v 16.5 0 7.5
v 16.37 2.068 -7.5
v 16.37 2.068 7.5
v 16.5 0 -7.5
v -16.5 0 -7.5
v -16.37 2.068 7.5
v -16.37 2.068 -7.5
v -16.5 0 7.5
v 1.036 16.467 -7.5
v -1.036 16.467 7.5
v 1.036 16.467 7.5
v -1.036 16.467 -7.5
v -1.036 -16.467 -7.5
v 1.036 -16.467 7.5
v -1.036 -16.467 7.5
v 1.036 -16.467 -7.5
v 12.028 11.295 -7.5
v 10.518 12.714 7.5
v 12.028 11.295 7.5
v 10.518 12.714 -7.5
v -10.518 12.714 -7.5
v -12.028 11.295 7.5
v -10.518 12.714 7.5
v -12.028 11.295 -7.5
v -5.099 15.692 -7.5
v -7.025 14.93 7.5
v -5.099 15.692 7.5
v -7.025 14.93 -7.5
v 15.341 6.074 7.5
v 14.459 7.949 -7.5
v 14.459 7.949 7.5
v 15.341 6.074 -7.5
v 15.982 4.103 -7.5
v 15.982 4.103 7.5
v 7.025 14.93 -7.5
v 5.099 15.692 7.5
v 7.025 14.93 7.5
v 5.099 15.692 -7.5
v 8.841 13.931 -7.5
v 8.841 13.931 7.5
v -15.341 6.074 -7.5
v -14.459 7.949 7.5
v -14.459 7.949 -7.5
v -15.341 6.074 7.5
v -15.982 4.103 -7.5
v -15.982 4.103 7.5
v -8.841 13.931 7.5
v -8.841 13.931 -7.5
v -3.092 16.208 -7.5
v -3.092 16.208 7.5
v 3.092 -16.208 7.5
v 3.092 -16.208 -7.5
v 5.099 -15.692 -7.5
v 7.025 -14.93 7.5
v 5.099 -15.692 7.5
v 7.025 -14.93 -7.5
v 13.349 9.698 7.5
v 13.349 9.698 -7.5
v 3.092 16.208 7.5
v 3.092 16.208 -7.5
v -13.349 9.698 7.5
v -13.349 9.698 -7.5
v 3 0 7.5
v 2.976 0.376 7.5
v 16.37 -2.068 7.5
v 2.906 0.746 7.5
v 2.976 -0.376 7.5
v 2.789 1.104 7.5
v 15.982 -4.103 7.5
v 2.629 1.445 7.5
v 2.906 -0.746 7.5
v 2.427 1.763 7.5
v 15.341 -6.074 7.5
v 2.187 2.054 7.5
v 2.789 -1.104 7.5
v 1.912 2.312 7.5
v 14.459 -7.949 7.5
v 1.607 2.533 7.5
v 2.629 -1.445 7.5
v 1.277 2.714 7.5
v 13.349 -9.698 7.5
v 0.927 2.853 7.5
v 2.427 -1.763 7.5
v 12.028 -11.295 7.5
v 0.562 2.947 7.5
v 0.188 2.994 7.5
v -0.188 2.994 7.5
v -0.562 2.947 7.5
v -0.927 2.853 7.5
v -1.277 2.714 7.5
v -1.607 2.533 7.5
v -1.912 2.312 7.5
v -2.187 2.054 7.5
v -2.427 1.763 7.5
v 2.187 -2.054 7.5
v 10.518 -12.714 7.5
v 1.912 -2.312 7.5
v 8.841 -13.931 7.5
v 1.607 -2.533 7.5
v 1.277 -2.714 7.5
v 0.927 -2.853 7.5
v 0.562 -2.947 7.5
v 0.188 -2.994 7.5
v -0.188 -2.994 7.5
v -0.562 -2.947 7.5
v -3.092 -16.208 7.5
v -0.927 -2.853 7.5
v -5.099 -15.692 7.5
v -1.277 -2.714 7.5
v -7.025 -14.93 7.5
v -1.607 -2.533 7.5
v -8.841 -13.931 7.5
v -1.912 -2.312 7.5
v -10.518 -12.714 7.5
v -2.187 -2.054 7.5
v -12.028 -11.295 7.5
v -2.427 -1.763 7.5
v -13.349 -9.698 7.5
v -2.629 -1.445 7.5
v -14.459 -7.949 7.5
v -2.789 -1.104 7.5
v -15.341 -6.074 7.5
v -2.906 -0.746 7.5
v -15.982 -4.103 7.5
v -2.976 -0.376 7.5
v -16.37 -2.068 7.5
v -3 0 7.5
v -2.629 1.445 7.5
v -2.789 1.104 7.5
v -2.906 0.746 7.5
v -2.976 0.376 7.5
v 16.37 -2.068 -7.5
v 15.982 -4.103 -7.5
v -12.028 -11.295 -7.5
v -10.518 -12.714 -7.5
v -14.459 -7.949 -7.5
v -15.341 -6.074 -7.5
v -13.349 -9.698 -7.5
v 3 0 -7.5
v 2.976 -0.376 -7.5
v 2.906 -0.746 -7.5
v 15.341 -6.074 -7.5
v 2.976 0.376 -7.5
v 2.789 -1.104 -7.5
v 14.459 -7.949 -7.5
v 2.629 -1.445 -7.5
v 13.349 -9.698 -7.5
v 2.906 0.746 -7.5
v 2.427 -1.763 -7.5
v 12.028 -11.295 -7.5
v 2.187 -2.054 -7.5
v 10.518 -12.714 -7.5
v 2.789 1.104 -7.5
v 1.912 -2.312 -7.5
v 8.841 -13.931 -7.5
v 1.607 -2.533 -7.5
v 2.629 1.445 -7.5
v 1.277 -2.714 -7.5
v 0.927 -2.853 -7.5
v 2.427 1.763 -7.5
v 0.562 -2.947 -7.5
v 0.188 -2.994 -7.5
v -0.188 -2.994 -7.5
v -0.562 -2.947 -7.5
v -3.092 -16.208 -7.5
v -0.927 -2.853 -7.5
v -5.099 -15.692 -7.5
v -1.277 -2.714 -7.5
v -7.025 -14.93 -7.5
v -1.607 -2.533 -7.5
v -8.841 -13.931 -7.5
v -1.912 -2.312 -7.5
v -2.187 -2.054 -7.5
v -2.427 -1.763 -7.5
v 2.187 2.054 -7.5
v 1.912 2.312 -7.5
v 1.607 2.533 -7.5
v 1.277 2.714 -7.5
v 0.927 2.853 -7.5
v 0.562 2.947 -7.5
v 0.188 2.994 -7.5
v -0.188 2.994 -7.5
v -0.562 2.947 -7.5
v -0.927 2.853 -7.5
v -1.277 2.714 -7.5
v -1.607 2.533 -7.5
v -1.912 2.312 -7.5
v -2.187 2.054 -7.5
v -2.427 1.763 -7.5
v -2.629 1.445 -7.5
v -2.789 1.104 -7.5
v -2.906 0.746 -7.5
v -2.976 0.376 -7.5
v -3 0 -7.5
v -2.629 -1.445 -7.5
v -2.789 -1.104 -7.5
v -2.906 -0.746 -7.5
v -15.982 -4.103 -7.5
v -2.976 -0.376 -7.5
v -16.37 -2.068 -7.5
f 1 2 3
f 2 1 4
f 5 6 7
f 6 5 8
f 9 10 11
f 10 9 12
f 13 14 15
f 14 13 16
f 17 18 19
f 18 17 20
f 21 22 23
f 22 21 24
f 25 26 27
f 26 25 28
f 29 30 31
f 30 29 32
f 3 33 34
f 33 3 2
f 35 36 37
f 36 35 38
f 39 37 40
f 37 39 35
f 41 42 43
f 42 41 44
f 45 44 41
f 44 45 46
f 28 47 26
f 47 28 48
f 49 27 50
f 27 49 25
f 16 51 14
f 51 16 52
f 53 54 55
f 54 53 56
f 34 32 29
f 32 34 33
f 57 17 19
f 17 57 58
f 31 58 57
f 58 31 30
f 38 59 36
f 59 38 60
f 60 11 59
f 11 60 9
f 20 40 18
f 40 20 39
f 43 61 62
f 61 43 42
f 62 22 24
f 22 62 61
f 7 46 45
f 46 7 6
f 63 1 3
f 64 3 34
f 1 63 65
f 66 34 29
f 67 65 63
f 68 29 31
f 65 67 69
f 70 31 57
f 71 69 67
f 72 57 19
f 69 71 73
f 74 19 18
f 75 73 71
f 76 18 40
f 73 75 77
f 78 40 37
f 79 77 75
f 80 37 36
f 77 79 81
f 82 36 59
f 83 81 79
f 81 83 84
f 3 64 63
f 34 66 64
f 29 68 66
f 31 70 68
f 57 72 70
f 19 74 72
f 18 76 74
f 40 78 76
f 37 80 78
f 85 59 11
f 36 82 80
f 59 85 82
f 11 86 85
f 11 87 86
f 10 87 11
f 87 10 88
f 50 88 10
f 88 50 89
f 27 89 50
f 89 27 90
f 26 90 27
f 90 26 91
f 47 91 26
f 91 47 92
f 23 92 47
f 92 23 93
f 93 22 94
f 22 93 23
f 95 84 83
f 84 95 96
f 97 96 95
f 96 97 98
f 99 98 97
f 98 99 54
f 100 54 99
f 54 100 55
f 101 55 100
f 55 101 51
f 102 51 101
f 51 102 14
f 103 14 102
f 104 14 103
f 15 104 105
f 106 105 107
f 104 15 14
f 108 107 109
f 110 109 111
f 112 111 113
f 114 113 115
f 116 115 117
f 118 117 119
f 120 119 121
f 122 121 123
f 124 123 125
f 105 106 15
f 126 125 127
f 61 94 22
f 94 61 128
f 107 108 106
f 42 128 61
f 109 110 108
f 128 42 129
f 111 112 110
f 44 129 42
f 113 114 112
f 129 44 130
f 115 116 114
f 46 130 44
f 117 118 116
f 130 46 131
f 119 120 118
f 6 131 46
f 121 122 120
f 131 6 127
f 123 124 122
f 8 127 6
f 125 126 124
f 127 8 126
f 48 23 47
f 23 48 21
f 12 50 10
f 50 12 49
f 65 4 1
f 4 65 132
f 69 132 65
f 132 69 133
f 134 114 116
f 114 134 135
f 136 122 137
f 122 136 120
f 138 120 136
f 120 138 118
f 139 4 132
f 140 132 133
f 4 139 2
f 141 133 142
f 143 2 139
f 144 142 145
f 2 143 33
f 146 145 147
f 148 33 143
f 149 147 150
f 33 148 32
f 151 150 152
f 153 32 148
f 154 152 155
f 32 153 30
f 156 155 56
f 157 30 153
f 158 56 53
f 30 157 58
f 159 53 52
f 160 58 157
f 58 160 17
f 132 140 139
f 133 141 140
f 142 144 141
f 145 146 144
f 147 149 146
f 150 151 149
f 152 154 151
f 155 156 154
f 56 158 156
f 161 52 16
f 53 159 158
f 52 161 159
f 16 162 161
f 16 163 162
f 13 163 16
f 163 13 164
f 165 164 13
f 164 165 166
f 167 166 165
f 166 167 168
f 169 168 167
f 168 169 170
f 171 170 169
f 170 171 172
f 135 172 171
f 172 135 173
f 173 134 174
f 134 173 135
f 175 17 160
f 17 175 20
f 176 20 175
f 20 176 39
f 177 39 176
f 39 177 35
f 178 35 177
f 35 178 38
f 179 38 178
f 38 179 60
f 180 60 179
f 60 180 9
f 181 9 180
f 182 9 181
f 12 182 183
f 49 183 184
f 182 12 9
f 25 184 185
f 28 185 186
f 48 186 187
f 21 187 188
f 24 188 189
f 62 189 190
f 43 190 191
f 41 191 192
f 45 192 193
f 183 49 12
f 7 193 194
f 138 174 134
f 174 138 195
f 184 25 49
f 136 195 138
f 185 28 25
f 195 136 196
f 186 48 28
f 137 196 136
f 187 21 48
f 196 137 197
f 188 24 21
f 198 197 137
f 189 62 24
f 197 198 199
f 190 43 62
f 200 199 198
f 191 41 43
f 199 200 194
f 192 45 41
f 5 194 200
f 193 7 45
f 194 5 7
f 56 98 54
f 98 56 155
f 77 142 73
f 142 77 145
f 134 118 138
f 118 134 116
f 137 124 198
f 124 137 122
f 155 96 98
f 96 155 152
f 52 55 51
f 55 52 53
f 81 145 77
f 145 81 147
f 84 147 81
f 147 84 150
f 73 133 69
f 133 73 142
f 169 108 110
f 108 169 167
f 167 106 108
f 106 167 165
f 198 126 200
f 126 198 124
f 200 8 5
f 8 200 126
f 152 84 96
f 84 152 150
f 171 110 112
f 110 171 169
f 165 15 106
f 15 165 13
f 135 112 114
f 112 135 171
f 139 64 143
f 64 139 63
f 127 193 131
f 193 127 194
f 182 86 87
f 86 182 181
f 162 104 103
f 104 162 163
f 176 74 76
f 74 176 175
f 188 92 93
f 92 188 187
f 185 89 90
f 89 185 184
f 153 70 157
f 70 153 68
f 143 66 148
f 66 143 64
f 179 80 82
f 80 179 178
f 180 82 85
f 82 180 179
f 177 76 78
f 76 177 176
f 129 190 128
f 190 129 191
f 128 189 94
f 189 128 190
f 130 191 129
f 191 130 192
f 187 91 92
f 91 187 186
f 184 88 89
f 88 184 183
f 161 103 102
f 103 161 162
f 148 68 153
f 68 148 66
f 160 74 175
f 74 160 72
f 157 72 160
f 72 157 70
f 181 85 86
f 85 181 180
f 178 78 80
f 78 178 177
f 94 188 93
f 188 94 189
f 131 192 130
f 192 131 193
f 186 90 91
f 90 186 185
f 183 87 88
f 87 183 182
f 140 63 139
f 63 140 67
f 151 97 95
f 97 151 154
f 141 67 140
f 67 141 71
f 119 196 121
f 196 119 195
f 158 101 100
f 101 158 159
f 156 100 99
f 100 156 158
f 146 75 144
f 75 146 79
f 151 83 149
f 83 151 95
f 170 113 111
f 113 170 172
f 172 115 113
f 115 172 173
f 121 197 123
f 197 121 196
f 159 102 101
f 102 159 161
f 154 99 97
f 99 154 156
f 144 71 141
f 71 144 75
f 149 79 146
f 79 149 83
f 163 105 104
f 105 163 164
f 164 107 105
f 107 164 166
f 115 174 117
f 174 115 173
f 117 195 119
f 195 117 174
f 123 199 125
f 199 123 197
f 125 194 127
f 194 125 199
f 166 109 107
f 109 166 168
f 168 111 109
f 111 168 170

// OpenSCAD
$fn = 50;


difference() {
	union() {
		translate(v = [0, 0, -7.5000000000]) {
			cylinder(h = 15, r = 16.5000000000);
		}
	}
	union() {
		translate(v = [0, 0, -100.0000000000]) {
			cylinder(h = 200, r = 3);
		}
	}
}
